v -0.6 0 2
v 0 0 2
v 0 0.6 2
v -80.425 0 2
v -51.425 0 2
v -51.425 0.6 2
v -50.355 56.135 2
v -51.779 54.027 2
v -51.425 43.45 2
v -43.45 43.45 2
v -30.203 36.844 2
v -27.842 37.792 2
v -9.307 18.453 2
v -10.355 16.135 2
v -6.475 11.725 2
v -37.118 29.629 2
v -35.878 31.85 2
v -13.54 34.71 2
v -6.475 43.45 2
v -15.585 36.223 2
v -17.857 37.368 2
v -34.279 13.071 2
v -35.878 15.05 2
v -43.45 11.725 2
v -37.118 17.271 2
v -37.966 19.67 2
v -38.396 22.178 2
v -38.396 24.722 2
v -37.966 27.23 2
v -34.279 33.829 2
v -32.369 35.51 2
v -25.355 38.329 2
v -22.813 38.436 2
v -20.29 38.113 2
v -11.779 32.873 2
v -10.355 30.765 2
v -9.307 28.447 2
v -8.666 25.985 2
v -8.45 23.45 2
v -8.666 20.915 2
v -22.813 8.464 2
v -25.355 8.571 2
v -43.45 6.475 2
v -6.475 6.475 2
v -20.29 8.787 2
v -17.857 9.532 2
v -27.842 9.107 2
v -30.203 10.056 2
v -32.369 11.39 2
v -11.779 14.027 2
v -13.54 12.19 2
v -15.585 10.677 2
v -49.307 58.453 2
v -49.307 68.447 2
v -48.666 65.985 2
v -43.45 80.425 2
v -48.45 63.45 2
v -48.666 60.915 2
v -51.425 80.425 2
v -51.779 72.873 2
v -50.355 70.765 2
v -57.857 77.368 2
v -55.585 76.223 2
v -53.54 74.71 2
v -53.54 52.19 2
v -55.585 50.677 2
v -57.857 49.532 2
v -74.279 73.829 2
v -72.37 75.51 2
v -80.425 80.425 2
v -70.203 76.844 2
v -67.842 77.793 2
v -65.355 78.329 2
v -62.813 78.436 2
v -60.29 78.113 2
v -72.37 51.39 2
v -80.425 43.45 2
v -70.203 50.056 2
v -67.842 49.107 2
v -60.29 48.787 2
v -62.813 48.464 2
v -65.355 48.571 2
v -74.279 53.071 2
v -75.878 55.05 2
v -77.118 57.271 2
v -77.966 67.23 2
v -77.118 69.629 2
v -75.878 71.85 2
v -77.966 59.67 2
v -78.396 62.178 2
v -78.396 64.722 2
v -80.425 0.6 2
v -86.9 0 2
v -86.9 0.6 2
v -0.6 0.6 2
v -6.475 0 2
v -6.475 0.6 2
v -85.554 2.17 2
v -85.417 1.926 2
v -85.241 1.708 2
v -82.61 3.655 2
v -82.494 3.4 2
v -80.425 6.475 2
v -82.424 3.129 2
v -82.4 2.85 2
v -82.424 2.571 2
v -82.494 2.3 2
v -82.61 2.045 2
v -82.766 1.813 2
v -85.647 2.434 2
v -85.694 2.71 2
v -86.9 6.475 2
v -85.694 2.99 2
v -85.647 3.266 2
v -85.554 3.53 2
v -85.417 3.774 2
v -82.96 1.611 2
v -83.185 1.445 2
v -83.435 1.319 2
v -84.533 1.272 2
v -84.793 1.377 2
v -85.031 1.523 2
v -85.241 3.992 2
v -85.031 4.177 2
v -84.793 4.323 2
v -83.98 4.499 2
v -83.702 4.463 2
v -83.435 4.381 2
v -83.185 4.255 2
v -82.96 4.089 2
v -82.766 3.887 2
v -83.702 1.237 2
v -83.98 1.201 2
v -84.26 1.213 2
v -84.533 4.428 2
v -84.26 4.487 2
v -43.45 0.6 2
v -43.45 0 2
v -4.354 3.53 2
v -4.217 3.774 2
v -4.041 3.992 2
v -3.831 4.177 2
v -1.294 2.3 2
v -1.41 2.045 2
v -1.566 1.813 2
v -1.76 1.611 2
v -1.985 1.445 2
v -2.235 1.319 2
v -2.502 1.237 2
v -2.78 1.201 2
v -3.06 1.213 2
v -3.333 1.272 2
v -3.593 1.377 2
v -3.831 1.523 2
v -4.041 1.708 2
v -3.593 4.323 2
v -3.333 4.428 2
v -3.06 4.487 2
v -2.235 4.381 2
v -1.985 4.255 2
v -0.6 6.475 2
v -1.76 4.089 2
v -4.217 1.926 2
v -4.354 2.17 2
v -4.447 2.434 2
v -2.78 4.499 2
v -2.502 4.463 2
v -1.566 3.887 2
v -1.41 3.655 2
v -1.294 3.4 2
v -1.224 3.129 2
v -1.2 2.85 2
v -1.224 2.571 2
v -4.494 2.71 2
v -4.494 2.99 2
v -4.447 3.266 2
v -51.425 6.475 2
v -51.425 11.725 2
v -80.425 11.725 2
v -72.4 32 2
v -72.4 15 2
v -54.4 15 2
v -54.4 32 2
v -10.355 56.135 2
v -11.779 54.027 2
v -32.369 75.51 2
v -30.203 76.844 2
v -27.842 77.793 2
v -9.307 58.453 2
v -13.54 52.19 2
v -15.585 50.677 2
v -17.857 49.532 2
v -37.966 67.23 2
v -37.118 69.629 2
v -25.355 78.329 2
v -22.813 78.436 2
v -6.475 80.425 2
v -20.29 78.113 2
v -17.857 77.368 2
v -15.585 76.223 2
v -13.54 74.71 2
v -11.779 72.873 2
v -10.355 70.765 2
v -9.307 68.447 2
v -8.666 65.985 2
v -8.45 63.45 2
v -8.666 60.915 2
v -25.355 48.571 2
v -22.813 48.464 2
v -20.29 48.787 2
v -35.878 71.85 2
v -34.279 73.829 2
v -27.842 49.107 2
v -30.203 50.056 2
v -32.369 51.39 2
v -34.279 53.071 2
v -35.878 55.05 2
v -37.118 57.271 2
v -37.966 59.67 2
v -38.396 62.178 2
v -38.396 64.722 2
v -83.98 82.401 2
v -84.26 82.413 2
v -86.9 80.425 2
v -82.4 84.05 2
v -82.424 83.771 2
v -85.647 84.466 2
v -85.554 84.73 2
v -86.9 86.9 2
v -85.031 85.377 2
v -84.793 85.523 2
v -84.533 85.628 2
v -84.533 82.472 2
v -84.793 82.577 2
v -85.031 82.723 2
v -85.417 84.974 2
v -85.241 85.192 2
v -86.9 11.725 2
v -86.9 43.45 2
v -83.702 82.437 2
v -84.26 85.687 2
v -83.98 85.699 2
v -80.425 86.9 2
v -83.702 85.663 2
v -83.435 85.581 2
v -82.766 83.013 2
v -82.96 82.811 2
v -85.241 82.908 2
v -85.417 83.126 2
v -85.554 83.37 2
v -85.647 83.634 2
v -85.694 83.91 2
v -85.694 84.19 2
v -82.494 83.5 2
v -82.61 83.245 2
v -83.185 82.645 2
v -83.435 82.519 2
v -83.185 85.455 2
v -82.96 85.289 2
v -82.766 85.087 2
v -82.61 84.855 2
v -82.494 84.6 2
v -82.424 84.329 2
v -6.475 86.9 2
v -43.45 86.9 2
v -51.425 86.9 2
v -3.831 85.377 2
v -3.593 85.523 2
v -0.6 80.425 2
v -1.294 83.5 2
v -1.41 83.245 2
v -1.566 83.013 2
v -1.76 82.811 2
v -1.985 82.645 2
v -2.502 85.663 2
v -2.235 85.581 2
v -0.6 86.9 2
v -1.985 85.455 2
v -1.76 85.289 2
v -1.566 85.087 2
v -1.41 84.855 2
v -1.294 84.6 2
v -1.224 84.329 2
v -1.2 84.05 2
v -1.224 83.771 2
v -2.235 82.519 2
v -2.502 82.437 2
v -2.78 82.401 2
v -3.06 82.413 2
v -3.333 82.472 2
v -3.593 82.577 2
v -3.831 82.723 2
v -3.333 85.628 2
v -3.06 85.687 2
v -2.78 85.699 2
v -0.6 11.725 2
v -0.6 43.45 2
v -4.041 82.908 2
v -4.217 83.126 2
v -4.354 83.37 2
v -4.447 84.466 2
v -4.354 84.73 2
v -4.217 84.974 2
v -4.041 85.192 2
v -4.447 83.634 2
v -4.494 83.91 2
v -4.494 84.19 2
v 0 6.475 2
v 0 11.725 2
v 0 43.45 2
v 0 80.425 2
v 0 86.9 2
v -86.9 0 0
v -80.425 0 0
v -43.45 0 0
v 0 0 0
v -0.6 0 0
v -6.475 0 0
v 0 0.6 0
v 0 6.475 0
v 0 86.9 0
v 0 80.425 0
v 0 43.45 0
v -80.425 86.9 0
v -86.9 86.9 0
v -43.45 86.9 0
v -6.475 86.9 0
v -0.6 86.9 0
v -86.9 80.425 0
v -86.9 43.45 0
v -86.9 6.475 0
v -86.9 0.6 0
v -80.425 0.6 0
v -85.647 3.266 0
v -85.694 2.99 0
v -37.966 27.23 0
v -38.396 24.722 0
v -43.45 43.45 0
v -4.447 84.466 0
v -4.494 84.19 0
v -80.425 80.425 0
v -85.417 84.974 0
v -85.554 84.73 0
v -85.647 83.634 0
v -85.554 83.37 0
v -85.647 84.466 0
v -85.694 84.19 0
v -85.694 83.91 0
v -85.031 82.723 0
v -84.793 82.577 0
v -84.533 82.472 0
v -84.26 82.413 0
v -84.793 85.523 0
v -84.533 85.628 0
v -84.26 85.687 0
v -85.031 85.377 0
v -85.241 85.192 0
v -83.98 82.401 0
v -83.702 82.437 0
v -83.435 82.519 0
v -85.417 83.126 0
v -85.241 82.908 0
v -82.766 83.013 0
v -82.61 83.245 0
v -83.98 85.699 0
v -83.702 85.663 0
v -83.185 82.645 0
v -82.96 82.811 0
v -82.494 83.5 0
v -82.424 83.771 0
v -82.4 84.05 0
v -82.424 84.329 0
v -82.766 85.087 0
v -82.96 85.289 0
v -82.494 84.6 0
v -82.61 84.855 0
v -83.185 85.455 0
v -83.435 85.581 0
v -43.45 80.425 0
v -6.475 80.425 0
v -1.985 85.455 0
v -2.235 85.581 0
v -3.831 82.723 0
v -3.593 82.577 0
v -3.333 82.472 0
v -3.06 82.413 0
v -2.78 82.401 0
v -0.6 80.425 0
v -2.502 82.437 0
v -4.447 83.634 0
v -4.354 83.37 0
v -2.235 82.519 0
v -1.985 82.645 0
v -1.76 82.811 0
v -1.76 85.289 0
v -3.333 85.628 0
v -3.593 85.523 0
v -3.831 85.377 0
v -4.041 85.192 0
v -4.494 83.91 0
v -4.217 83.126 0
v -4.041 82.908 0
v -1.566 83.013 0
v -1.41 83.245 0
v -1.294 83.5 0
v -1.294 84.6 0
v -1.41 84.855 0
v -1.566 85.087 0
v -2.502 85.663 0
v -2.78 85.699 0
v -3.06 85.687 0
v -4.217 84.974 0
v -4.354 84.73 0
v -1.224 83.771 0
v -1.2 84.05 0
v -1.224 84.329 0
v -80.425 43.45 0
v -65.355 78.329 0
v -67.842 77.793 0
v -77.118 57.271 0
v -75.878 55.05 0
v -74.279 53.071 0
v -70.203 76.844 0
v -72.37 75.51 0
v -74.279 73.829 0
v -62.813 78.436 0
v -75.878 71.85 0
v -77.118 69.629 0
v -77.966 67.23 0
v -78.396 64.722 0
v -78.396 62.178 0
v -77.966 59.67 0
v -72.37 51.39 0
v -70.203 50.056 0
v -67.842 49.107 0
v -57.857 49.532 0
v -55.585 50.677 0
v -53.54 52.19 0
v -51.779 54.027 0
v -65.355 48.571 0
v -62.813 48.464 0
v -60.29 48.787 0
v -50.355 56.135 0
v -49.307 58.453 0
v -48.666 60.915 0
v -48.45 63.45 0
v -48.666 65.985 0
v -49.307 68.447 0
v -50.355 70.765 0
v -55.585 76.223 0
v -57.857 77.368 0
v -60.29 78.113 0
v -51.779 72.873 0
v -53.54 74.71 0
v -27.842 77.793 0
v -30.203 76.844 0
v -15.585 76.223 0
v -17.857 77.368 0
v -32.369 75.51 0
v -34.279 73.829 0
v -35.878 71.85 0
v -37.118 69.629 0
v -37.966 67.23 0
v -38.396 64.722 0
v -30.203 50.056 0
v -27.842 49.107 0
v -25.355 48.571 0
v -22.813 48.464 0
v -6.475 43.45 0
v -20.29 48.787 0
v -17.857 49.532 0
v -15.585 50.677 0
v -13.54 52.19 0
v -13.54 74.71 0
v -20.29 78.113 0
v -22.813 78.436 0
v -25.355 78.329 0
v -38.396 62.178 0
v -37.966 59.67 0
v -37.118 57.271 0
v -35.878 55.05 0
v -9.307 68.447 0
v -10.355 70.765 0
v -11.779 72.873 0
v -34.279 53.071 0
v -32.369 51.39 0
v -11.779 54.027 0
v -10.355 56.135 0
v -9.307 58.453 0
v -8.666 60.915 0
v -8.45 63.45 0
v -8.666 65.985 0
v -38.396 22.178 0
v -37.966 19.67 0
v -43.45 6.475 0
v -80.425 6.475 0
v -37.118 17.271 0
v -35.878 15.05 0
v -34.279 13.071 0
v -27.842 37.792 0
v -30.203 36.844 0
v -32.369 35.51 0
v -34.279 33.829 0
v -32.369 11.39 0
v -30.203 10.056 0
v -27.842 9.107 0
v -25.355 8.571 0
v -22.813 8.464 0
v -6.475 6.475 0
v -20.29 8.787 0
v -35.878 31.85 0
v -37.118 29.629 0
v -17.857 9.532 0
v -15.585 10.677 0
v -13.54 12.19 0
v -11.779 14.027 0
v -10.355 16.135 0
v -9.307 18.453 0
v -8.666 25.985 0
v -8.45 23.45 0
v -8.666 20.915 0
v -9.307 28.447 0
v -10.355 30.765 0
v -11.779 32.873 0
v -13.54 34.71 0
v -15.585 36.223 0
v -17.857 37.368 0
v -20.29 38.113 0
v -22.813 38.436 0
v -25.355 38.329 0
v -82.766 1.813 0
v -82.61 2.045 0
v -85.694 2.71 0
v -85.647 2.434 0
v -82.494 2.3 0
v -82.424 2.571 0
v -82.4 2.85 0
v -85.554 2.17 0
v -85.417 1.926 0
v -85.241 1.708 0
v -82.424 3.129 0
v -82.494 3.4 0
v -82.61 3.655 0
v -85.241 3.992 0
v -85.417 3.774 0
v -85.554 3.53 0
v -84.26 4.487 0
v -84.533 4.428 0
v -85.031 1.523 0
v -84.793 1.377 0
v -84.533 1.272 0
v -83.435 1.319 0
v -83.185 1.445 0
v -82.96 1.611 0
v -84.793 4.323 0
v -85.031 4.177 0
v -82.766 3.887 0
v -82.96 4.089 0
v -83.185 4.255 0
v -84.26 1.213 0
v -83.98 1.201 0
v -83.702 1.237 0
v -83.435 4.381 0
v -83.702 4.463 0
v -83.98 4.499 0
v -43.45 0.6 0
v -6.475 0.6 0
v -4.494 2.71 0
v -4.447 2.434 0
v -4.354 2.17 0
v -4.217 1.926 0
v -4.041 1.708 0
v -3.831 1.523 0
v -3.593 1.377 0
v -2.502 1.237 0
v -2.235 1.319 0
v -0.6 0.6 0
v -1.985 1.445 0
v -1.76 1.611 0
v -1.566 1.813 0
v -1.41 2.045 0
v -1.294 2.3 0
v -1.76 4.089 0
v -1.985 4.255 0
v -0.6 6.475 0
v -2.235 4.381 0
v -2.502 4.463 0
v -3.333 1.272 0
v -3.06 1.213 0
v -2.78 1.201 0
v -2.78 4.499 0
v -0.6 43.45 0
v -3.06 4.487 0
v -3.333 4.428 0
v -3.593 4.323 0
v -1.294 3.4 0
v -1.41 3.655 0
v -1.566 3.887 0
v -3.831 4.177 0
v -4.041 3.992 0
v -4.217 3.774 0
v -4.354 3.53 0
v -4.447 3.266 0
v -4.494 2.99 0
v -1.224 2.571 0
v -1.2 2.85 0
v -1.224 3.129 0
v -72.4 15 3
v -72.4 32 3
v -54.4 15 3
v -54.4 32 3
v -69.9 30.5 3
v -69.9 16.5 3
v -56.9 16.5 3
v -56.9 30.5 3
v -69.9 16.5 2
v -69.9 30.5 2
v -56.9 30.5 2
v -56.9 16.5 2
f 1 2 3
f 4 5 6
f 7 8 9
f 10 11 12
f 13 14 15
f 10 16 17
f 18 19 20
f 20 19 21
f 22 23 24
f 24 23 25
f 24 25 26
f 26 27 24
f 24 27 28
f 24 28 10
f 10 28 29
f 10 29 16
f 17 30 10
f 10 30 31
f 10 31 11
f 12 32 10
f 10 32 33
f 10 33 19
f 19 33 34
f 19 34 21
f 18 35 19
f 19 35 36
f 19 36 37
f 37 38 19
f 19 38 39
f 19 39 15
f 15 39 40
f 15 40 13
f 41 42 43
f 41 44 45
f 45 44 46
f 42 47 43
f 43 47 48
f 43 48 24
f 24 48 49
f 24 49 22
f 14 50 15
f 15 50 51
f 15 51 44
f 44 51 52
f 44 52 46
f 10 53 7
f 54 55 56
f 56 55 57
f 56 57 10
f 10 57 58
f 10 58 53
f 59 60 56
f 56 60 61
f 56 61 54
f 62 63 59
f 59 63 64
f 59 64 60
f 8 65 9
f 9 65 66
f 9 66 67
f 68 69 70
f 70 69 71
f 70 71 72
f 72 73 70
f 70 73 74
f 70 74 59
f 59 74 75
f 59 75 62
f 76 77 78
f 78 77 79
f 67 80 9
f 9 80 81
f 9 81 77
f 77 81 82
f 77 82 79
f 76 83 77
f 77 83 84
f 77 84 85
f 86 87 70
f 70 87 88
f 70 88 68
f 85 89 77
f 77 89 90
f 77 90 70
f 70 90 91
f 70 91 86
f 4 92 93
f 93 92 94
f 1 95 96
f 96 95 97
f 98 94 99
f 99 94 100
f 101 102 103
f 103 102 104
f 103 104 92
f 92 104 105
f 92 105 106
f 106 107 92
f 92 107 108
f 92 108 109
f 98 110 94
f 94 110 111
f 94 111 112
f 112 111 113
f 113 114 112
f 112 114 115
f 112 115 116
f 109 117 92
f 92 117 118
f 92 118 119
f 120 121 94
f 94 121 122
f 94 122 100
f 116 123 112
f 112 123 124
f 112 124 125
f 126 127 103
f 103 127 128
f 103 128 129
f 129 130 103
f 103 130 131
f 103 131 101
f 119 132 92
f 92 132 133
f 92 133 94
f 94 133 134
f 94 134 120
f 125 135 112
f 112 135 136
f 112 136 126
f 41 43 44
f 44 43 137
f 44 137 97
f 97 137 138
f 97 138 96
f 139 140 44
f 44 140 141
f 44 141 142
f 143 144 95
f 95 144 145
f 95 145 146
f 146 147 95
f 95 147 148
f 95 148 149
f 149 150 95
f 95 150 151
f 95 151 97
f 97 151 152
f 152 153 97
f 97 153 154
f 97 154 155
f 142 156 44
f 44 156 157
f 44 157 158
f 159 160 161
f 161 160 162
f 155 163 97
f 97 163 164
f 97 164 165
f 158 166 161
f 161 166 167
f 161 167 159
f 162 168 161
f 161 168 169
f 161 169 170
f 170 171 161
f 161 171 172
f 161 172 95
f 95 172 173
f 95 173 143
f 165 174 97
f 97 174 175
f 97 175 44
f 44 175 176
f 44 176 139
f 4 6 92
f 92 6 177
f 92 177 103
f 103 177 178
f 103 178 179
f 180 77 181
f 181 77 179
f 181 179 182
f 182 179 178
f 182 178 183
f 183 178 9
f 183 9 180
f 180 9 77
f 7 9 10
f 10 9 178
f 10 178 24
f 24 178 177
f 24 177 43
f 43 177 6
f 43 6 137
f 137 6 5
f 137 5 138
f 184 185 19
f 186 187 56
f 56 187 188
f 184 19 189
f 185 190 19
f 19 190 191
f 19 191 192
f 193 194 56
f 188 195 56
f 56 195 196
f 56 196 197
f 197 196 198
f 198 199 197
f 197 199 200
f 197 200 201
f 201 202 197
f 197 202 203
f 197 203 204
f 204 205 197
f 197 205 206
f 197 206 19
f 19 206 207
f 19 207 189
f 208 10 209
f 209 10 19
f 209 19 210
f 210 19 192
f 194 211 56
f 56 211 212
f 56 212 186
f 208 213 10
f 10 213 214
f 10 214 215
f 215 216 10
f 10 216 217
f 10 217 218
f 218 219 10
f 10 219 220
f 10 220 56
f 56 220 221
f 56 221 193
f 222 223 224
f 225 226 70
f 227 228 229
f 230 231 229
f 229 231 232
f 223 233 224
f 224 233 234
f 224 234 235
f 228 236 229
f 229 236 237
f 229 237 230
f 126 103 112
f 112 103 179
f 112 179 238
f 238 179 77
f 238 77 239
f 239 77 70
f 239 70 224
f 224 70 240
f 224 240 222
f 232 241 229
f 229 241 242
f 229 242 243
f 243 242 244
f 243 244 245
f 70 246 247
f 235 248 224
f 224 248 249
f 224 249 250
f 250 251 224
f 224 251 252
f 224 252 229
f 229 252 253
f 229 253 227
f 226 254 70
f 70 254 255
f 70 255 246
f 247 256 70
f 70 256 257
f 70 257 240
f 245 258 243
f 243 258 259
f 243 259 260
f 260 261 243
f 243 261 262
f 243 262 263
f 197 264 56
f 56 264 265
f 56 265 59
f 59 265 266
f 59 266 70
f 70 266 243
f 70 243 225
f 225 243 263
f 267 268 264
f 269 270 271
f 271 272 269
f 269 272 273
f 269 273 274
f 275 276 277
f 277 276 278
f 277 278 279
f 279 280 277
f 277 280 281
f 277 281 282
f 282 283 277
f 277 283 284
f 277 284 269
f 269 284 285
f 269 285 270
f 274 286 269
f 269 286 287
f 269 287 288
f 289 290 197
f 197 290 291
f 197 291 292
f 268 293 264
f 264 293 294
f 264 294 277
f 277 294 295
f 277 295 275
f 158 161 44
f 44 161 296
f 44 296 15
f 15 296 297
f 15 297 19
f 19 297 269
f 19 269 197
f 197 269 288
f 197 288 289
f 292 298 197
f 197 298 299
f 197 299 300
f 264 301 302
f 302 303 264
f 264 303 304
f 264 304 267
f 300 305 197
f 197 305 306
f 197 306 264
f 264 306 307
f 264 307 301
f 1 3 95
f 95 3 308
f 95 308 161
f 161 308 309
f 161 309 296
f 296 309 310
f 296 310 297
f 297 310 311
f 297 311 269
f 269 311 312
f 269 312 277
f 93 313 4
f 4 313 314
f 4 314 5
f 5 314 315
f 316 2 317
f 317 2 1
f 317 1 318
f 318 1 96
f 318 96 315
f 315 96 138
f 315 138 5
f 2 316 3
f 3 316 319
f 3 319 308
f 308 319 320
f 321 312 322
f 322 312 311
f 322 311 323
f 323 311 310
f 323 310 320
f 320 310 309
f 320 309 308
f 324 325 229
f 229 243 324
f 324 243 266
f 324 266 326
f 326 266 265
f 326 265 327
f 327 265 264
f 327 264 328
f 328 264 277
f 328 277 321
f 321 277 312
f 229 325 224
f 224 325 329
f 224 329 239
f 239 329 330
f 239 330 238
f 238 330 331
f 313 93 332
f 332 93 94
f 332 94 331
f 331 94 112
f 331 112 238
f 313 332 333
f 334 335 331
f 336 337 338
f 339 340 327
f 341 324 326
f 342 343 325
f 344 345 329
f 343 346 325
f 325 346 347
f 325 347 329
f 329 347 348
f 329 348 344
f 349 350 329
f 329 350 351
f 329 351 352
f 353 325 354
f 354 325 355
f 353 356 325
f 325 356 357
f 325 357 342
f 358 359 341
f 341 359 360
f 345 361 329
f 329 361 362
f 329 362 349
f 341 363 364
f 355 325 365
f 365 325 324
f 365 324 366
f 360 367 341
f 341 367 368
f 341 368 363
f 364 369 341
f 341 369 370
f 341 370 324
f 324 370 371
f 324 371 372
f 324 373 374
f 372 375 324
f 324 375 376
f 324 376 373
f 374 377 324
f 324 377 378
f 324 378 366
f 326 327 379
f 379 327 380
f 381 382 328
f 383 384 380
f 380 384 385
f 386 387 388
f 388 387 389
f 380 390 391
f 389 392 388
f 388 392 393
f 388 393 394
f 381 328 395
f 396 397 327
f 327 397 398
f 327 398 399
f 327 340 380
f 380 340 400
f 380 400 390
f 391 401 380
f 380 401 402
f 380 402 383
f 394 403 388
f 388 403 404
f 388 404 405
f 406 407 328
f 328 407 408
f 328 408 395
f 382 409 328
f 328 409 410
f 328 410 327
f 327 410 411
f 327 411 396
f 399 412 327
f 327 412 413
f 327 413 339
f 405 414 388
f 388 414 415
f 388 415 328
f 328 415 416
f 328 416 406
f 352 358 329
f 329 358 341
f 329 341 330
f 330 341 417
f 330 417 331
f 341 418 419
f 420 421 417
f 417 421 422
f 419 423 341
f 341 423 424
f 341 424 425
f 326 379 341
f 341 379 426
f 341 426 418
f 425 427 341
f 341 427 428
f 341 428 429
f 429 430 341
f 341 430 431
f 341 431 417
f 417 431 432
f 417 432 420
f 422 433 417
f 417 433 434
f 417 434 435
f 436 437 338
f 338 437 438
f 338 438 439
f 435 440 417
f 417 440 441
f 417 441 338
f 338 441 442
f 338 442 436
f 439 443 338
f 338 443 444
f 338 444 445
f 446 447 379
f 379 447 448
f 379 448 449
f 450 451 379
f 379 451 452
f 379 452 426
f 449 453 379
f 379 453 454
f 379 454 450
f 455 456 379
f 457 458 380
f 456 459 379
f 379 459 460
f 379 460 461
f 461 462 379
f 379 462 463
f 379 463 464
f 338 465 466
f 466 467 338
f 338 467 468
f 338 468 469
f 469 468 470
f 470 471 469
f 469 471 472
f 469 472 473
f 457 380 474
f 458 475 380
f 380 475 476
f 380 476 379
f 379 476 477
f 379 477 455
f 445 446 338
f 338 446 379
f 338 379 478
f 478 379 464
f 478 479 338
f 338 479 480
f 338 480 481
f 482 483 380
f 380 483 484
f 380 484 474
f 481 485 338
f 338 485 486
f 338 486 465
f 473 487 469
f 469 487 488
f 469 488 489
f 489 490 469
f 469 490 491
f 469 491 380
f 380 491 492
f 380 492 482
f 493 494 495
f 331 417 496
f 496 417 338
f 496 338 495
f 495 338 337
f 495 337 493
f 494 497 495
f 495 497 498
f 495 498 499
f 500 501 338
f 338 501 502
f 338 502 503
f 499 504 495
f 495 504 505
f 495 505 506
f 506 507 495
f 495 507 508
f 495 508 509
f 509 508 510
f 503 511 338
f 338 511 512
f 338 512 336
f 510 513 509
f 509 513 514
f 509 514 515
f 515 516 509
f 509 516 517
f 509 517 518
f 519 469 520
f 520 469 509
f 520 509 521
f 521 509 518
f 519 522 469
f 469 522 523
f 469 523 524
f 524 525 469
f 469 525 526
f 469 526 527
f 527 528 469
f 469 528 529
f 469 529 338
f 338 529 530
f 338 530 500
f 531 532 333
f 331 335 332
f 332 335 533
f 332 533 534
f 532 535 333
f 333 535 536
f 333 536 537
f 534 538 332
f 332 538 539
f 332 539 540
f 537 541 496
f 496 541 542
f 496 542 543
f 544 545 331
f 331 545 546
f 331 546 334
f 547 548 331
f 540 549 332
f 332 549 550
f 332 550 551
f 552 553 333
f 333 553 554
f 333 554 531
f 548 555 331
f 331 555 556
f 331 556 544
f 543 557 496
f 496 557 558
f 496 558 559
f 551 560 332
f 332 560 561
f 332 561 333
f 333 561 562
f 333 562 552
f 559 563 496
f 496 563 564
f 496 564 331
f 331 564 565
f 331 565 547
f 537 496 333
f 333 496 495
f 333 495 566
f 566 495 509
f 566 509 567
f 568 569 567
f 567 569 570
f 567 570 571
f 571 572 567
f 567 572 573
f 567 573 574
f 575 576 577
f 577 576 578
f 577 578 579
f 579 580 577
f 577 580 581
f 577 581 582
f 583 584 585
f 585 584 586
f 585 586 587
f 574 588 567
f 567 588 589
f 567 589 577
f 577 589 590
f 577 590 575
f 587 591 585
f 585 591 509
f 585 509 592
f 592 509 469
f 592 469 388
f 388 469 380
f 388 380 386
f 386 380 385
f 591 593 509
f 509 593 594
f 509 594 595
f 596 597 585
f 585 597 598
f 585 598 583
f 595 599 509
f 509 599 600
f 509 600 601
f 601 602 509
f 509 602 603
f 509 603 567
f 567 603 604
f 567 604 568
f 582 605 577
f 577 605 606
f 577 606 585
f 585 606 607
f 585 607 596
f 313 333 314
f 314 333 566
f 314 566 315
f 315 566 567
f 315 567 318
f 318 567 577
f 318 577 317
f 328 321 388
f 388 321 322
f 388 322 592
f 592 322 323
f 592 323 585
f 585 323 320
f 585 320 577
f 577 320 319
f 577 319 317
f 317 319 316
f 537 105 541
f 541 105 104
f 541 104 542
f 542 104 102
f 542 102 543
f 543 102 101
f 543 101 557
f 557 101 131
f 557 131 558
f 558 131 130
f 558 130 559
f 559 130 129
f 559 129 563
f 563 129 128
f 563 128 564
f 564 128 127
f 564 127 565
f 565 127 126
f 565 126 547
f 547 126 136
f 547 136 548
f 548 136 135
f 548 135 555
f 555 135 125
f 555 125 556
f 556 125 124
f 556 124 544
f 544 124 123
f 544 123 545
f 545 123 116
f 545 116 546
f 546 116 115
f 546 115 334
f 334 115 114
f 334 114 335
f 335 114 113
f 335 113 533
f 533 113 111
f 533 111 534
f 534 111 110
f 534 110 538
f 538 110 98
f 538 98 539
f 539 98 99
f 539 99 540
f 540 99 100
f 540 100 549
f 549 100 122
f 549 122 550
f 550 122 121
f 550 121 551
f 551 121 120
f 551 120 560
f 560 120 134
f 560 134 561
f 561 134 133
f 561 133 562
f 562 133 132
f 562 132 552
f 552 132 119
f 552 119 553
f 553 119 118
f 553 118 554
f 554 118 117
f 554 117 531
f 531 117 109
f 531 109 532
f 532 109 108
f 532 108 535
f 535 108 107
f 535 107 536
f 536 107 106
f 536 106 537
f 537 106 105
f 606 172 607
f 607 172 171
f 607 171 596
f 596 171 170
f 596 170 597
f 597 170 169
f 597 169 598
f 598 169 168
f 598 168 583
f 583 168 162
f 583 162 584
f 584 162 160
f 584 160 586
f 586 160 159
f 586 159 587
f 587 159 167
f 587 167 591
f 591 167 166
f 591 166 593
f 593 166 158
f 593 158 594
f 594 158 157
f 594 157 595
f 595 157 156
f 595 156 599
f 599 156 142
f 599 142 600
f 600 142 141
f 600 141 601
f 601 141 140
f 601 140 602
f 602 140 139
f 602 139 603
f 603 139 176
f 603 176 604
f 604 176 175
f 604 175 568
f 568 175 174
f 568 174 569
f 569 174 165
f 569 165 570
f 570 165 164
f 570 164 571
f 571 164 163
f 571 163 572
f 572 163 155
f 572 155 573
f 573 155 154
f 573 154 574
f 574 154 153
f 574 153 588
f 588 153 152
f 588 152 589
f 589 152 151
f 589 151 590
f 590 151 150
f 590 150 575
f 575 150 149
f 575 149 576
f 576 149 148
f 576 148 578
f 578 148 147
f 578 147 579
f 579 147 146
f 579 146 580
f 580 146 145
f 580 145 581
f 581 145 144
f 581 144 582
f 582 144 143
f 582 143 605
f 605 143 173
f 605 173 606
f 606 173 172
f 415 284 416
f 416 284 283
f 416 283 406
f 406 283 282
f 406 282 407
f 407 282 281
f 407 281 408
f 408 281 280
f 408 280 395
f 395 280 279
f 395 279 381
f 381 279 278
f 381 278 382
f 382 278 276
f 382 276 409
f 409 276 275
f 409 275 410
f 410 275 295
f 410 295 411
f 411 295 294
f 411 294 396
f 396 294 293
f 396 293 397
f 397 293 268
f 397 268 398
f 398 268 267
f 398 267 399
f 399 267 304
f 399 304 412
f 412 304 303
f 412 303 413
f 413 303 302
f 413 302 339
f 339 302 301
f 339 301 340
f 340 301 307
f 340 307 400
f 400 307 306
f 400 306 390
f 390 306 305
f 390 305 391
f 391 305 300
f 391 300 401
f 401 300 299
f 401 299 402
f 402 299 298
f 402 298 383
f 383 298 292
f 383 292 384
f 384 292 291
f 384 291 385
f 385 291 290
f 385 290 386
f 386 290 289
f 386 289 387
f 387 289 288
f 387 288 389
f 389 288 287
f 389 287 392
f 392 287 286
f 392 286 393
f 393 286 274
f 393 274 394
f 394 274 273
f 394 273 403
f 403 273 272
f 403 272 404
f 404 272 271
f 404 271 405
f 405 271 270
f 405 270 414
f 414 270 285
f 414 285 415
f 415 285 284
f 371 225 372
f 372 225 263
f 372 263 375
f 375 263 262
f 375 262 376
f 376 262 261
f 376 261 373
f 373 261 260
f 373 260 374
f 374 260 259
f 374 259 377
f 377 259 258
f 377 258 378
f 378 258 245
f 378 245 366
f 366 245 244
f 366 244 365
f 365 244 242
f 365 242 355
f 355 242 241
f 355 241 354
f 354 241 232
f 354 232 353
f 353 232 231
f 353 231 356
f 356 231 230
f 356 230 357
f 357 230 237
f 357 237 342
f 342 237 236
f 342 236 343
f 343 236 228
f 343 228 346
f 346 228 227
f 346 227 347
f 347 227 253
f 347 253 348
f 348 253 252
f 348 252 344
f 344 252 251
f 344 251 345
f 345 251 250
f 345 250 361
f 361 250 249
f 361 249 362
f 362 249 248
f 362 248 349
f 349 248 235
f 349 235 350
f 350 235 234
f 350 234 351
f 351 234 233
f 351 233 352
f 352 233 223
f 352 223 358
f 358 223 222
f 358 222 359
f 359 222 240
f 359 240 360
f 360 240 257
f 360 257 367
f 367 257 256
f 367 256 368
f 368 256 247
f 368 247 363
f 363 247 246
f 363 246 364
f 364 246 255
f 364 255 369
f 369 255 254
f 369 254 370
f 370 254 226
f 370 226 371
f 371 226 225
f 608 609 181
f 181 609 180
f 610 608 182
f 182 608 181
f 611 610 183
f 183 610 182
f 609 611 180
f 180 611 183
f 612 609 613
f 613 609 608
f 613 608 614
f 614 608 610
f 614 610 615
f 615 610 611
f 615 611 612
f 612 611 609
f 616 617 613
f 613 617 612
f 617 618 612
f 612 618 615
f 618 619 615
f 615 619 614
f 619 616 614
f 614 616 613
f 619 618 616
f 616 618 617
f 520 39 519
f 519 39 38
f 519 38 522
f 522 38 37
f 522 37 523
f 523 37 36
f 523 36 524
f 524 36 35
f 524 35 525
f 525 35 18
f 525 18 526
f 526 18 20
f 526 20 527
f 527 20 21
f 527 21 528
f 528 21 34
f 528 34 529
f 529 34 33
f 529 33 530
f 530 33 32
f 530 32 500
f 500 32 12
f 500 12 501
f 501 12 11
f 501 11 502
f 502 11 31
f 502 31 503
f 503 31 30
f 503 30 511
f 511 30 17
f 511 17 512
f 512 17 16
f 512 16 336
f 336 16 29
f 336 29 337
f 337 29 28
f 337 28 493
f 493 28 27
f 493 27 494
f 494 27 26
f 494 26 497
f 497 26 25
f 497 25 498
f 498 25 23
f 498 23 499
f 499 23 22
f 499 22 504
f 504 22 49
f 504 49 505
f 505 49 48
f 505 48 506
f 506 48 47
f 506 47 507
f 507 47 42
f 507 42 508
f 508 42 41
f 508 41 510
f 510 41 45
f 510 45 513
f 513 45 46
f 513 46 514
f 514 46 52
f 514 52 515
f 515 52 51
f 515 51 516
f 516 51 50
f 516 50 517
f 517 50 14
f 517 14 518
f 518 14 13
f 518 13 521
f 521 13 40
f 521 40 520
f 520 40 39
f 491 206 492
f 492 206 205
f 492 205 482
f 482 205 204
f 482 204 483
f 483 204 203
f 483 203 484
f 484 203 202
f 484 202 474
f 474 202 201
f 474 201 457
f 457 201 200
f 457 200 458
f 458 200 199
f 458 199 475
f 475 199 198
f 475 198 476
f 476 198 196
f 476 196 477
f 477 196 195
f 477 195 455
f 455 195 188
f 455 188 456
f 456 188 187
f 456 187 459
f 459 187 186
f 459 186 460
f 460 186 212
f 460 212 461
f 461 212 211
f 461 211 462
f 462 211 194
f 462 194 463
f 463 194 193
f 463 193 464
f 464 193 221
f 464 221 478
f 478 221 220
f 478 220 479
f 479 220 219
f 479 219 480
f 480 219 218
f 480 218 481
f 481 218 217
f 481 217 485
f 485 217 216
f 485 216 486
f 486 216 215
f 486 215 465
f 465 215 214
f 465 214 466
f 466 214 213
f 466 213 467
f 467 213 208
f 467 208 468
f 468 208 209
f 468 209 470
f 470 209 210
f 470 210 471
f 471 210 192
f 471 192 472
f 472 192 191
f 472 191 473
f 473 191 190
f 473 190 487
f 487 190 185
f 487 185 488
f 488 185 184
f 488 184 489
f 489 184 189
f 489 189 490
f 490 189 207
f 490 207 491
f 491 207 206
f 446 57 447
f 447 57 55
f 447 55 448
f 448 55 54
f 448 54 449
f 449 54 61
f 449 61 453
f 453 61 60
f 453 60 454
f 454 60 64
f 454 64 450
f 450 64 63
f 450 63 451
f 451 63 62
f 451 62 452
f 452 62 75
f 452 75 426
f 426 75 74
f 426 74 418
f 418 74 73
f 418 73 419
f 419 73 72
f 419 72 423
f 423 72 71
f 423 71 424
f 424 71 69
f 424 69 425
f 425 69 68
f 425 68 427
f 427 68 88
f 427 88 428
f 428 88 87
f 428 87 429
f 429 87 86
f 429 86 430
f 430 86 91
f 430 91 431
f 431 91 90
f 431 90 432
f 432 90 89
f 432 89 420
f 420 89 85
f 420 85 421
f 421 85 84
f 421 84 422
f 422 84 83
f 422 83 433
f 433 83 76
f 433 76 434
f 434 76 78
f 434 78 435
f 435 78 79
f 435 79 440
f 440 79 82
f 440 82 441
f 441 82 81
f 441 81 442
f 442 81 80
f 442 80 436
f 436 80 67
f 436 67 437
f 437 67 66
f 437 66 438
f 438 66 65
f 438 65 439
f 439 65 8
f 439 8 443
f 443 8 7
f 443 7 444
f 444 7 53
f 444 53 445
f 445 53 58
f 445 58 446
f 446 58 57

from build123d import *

# Parameters (mm, degrees)
SKETCH1_W           = 86.9
SKETCH1_H           = 86.9
BOSS_EXTRUDE1_DEPTH = 2
SKETCH2_R           = 1.65
CUT_EXTRUDE3_DEPTH  = 123.911431527
SKETCH3_W           = 18
SKETCH3_H           = 17
BOSS_EXTRUDE2_DEPTH = 1
SKETCH4_W           = 13
SKETCH4_H           = 14
CUT_EXTRUDE4_DEPTH  = 1
SKETCH5_R           = 15
CUT_EXTRUDE5_DEPTH  = 2


with BuildPart() as part:
    # Sketch1 → Boss-Extrude1 (new body)
    with BuildSketch(Plane(origin=(0, 0, 0), x_dir=(0, 1, 0), z_dir=(0, 0, 1))):
        with Locations((43.45, 43.45)):
            Rectangle(SKETCH1_W, SKETCH1_H)
    extrude(amount=BOSS_EXTRUDE1_DEPTH)

    # Sketch2 → Cut-Extrude3 (cut, through all)
    with BuildSketch(Plane.XY.offset(2)):
        with Locations((-84.05, 2.85)):
            Circle(SKETCH2_R)
        with Locations((-2.85, 2.85)):
            Circle(SKETCH2_R)
        with Locations((-2.85, 84.05)):
            Circle(SKETCH2_R)
        with Locations((-84.05, 84.05)):
            Circle(SKETCH2_R)
    extrude(amount=-CUT_EXTRUDE3_DEPTH, mode=Mode.SUBTRACT)

    # Sketch3 → Boss-Extrude2 (add)
    with BuildSketch(Plane.XY.offset(2)):
        with Locations((-63.4, 23.5)):
            Rectangle(SKETCH3_W, SKETCH3_H)
    extrude(amount=BOSS_EXTRUDE2_DEPTH)

    # Sketch4 → Cut-Extrude4 (cut)
    with BuildSketch(Plane.XY.offset(3)):
        with Locations((-63.4, 23.5)):
            Rectangle(SKETCH4_W, SKETCH4_H)
    extrude(amount=-CUT_EXTRUDE4_DEPTH, mode=Mode.SUBTRACT)

    # Sketch5 → Cut-Extrude5 (cut)
    with BuildSketch(Plane.XY.offset(2)):
        with Locations((-63.45, 63.45)):
            Circle(SKETCH5_R)
        with Locations((-23.45, 63.45)):
            Circle(SKETCH5_R)
        with Locations((-23.45, 23.45)):
            Circle(SKETCH5_R)
    extrude(amount=-CUT_EXTRUDE5_DEPTH, mode=Mode.SUBTRACT)


solid = part.part
